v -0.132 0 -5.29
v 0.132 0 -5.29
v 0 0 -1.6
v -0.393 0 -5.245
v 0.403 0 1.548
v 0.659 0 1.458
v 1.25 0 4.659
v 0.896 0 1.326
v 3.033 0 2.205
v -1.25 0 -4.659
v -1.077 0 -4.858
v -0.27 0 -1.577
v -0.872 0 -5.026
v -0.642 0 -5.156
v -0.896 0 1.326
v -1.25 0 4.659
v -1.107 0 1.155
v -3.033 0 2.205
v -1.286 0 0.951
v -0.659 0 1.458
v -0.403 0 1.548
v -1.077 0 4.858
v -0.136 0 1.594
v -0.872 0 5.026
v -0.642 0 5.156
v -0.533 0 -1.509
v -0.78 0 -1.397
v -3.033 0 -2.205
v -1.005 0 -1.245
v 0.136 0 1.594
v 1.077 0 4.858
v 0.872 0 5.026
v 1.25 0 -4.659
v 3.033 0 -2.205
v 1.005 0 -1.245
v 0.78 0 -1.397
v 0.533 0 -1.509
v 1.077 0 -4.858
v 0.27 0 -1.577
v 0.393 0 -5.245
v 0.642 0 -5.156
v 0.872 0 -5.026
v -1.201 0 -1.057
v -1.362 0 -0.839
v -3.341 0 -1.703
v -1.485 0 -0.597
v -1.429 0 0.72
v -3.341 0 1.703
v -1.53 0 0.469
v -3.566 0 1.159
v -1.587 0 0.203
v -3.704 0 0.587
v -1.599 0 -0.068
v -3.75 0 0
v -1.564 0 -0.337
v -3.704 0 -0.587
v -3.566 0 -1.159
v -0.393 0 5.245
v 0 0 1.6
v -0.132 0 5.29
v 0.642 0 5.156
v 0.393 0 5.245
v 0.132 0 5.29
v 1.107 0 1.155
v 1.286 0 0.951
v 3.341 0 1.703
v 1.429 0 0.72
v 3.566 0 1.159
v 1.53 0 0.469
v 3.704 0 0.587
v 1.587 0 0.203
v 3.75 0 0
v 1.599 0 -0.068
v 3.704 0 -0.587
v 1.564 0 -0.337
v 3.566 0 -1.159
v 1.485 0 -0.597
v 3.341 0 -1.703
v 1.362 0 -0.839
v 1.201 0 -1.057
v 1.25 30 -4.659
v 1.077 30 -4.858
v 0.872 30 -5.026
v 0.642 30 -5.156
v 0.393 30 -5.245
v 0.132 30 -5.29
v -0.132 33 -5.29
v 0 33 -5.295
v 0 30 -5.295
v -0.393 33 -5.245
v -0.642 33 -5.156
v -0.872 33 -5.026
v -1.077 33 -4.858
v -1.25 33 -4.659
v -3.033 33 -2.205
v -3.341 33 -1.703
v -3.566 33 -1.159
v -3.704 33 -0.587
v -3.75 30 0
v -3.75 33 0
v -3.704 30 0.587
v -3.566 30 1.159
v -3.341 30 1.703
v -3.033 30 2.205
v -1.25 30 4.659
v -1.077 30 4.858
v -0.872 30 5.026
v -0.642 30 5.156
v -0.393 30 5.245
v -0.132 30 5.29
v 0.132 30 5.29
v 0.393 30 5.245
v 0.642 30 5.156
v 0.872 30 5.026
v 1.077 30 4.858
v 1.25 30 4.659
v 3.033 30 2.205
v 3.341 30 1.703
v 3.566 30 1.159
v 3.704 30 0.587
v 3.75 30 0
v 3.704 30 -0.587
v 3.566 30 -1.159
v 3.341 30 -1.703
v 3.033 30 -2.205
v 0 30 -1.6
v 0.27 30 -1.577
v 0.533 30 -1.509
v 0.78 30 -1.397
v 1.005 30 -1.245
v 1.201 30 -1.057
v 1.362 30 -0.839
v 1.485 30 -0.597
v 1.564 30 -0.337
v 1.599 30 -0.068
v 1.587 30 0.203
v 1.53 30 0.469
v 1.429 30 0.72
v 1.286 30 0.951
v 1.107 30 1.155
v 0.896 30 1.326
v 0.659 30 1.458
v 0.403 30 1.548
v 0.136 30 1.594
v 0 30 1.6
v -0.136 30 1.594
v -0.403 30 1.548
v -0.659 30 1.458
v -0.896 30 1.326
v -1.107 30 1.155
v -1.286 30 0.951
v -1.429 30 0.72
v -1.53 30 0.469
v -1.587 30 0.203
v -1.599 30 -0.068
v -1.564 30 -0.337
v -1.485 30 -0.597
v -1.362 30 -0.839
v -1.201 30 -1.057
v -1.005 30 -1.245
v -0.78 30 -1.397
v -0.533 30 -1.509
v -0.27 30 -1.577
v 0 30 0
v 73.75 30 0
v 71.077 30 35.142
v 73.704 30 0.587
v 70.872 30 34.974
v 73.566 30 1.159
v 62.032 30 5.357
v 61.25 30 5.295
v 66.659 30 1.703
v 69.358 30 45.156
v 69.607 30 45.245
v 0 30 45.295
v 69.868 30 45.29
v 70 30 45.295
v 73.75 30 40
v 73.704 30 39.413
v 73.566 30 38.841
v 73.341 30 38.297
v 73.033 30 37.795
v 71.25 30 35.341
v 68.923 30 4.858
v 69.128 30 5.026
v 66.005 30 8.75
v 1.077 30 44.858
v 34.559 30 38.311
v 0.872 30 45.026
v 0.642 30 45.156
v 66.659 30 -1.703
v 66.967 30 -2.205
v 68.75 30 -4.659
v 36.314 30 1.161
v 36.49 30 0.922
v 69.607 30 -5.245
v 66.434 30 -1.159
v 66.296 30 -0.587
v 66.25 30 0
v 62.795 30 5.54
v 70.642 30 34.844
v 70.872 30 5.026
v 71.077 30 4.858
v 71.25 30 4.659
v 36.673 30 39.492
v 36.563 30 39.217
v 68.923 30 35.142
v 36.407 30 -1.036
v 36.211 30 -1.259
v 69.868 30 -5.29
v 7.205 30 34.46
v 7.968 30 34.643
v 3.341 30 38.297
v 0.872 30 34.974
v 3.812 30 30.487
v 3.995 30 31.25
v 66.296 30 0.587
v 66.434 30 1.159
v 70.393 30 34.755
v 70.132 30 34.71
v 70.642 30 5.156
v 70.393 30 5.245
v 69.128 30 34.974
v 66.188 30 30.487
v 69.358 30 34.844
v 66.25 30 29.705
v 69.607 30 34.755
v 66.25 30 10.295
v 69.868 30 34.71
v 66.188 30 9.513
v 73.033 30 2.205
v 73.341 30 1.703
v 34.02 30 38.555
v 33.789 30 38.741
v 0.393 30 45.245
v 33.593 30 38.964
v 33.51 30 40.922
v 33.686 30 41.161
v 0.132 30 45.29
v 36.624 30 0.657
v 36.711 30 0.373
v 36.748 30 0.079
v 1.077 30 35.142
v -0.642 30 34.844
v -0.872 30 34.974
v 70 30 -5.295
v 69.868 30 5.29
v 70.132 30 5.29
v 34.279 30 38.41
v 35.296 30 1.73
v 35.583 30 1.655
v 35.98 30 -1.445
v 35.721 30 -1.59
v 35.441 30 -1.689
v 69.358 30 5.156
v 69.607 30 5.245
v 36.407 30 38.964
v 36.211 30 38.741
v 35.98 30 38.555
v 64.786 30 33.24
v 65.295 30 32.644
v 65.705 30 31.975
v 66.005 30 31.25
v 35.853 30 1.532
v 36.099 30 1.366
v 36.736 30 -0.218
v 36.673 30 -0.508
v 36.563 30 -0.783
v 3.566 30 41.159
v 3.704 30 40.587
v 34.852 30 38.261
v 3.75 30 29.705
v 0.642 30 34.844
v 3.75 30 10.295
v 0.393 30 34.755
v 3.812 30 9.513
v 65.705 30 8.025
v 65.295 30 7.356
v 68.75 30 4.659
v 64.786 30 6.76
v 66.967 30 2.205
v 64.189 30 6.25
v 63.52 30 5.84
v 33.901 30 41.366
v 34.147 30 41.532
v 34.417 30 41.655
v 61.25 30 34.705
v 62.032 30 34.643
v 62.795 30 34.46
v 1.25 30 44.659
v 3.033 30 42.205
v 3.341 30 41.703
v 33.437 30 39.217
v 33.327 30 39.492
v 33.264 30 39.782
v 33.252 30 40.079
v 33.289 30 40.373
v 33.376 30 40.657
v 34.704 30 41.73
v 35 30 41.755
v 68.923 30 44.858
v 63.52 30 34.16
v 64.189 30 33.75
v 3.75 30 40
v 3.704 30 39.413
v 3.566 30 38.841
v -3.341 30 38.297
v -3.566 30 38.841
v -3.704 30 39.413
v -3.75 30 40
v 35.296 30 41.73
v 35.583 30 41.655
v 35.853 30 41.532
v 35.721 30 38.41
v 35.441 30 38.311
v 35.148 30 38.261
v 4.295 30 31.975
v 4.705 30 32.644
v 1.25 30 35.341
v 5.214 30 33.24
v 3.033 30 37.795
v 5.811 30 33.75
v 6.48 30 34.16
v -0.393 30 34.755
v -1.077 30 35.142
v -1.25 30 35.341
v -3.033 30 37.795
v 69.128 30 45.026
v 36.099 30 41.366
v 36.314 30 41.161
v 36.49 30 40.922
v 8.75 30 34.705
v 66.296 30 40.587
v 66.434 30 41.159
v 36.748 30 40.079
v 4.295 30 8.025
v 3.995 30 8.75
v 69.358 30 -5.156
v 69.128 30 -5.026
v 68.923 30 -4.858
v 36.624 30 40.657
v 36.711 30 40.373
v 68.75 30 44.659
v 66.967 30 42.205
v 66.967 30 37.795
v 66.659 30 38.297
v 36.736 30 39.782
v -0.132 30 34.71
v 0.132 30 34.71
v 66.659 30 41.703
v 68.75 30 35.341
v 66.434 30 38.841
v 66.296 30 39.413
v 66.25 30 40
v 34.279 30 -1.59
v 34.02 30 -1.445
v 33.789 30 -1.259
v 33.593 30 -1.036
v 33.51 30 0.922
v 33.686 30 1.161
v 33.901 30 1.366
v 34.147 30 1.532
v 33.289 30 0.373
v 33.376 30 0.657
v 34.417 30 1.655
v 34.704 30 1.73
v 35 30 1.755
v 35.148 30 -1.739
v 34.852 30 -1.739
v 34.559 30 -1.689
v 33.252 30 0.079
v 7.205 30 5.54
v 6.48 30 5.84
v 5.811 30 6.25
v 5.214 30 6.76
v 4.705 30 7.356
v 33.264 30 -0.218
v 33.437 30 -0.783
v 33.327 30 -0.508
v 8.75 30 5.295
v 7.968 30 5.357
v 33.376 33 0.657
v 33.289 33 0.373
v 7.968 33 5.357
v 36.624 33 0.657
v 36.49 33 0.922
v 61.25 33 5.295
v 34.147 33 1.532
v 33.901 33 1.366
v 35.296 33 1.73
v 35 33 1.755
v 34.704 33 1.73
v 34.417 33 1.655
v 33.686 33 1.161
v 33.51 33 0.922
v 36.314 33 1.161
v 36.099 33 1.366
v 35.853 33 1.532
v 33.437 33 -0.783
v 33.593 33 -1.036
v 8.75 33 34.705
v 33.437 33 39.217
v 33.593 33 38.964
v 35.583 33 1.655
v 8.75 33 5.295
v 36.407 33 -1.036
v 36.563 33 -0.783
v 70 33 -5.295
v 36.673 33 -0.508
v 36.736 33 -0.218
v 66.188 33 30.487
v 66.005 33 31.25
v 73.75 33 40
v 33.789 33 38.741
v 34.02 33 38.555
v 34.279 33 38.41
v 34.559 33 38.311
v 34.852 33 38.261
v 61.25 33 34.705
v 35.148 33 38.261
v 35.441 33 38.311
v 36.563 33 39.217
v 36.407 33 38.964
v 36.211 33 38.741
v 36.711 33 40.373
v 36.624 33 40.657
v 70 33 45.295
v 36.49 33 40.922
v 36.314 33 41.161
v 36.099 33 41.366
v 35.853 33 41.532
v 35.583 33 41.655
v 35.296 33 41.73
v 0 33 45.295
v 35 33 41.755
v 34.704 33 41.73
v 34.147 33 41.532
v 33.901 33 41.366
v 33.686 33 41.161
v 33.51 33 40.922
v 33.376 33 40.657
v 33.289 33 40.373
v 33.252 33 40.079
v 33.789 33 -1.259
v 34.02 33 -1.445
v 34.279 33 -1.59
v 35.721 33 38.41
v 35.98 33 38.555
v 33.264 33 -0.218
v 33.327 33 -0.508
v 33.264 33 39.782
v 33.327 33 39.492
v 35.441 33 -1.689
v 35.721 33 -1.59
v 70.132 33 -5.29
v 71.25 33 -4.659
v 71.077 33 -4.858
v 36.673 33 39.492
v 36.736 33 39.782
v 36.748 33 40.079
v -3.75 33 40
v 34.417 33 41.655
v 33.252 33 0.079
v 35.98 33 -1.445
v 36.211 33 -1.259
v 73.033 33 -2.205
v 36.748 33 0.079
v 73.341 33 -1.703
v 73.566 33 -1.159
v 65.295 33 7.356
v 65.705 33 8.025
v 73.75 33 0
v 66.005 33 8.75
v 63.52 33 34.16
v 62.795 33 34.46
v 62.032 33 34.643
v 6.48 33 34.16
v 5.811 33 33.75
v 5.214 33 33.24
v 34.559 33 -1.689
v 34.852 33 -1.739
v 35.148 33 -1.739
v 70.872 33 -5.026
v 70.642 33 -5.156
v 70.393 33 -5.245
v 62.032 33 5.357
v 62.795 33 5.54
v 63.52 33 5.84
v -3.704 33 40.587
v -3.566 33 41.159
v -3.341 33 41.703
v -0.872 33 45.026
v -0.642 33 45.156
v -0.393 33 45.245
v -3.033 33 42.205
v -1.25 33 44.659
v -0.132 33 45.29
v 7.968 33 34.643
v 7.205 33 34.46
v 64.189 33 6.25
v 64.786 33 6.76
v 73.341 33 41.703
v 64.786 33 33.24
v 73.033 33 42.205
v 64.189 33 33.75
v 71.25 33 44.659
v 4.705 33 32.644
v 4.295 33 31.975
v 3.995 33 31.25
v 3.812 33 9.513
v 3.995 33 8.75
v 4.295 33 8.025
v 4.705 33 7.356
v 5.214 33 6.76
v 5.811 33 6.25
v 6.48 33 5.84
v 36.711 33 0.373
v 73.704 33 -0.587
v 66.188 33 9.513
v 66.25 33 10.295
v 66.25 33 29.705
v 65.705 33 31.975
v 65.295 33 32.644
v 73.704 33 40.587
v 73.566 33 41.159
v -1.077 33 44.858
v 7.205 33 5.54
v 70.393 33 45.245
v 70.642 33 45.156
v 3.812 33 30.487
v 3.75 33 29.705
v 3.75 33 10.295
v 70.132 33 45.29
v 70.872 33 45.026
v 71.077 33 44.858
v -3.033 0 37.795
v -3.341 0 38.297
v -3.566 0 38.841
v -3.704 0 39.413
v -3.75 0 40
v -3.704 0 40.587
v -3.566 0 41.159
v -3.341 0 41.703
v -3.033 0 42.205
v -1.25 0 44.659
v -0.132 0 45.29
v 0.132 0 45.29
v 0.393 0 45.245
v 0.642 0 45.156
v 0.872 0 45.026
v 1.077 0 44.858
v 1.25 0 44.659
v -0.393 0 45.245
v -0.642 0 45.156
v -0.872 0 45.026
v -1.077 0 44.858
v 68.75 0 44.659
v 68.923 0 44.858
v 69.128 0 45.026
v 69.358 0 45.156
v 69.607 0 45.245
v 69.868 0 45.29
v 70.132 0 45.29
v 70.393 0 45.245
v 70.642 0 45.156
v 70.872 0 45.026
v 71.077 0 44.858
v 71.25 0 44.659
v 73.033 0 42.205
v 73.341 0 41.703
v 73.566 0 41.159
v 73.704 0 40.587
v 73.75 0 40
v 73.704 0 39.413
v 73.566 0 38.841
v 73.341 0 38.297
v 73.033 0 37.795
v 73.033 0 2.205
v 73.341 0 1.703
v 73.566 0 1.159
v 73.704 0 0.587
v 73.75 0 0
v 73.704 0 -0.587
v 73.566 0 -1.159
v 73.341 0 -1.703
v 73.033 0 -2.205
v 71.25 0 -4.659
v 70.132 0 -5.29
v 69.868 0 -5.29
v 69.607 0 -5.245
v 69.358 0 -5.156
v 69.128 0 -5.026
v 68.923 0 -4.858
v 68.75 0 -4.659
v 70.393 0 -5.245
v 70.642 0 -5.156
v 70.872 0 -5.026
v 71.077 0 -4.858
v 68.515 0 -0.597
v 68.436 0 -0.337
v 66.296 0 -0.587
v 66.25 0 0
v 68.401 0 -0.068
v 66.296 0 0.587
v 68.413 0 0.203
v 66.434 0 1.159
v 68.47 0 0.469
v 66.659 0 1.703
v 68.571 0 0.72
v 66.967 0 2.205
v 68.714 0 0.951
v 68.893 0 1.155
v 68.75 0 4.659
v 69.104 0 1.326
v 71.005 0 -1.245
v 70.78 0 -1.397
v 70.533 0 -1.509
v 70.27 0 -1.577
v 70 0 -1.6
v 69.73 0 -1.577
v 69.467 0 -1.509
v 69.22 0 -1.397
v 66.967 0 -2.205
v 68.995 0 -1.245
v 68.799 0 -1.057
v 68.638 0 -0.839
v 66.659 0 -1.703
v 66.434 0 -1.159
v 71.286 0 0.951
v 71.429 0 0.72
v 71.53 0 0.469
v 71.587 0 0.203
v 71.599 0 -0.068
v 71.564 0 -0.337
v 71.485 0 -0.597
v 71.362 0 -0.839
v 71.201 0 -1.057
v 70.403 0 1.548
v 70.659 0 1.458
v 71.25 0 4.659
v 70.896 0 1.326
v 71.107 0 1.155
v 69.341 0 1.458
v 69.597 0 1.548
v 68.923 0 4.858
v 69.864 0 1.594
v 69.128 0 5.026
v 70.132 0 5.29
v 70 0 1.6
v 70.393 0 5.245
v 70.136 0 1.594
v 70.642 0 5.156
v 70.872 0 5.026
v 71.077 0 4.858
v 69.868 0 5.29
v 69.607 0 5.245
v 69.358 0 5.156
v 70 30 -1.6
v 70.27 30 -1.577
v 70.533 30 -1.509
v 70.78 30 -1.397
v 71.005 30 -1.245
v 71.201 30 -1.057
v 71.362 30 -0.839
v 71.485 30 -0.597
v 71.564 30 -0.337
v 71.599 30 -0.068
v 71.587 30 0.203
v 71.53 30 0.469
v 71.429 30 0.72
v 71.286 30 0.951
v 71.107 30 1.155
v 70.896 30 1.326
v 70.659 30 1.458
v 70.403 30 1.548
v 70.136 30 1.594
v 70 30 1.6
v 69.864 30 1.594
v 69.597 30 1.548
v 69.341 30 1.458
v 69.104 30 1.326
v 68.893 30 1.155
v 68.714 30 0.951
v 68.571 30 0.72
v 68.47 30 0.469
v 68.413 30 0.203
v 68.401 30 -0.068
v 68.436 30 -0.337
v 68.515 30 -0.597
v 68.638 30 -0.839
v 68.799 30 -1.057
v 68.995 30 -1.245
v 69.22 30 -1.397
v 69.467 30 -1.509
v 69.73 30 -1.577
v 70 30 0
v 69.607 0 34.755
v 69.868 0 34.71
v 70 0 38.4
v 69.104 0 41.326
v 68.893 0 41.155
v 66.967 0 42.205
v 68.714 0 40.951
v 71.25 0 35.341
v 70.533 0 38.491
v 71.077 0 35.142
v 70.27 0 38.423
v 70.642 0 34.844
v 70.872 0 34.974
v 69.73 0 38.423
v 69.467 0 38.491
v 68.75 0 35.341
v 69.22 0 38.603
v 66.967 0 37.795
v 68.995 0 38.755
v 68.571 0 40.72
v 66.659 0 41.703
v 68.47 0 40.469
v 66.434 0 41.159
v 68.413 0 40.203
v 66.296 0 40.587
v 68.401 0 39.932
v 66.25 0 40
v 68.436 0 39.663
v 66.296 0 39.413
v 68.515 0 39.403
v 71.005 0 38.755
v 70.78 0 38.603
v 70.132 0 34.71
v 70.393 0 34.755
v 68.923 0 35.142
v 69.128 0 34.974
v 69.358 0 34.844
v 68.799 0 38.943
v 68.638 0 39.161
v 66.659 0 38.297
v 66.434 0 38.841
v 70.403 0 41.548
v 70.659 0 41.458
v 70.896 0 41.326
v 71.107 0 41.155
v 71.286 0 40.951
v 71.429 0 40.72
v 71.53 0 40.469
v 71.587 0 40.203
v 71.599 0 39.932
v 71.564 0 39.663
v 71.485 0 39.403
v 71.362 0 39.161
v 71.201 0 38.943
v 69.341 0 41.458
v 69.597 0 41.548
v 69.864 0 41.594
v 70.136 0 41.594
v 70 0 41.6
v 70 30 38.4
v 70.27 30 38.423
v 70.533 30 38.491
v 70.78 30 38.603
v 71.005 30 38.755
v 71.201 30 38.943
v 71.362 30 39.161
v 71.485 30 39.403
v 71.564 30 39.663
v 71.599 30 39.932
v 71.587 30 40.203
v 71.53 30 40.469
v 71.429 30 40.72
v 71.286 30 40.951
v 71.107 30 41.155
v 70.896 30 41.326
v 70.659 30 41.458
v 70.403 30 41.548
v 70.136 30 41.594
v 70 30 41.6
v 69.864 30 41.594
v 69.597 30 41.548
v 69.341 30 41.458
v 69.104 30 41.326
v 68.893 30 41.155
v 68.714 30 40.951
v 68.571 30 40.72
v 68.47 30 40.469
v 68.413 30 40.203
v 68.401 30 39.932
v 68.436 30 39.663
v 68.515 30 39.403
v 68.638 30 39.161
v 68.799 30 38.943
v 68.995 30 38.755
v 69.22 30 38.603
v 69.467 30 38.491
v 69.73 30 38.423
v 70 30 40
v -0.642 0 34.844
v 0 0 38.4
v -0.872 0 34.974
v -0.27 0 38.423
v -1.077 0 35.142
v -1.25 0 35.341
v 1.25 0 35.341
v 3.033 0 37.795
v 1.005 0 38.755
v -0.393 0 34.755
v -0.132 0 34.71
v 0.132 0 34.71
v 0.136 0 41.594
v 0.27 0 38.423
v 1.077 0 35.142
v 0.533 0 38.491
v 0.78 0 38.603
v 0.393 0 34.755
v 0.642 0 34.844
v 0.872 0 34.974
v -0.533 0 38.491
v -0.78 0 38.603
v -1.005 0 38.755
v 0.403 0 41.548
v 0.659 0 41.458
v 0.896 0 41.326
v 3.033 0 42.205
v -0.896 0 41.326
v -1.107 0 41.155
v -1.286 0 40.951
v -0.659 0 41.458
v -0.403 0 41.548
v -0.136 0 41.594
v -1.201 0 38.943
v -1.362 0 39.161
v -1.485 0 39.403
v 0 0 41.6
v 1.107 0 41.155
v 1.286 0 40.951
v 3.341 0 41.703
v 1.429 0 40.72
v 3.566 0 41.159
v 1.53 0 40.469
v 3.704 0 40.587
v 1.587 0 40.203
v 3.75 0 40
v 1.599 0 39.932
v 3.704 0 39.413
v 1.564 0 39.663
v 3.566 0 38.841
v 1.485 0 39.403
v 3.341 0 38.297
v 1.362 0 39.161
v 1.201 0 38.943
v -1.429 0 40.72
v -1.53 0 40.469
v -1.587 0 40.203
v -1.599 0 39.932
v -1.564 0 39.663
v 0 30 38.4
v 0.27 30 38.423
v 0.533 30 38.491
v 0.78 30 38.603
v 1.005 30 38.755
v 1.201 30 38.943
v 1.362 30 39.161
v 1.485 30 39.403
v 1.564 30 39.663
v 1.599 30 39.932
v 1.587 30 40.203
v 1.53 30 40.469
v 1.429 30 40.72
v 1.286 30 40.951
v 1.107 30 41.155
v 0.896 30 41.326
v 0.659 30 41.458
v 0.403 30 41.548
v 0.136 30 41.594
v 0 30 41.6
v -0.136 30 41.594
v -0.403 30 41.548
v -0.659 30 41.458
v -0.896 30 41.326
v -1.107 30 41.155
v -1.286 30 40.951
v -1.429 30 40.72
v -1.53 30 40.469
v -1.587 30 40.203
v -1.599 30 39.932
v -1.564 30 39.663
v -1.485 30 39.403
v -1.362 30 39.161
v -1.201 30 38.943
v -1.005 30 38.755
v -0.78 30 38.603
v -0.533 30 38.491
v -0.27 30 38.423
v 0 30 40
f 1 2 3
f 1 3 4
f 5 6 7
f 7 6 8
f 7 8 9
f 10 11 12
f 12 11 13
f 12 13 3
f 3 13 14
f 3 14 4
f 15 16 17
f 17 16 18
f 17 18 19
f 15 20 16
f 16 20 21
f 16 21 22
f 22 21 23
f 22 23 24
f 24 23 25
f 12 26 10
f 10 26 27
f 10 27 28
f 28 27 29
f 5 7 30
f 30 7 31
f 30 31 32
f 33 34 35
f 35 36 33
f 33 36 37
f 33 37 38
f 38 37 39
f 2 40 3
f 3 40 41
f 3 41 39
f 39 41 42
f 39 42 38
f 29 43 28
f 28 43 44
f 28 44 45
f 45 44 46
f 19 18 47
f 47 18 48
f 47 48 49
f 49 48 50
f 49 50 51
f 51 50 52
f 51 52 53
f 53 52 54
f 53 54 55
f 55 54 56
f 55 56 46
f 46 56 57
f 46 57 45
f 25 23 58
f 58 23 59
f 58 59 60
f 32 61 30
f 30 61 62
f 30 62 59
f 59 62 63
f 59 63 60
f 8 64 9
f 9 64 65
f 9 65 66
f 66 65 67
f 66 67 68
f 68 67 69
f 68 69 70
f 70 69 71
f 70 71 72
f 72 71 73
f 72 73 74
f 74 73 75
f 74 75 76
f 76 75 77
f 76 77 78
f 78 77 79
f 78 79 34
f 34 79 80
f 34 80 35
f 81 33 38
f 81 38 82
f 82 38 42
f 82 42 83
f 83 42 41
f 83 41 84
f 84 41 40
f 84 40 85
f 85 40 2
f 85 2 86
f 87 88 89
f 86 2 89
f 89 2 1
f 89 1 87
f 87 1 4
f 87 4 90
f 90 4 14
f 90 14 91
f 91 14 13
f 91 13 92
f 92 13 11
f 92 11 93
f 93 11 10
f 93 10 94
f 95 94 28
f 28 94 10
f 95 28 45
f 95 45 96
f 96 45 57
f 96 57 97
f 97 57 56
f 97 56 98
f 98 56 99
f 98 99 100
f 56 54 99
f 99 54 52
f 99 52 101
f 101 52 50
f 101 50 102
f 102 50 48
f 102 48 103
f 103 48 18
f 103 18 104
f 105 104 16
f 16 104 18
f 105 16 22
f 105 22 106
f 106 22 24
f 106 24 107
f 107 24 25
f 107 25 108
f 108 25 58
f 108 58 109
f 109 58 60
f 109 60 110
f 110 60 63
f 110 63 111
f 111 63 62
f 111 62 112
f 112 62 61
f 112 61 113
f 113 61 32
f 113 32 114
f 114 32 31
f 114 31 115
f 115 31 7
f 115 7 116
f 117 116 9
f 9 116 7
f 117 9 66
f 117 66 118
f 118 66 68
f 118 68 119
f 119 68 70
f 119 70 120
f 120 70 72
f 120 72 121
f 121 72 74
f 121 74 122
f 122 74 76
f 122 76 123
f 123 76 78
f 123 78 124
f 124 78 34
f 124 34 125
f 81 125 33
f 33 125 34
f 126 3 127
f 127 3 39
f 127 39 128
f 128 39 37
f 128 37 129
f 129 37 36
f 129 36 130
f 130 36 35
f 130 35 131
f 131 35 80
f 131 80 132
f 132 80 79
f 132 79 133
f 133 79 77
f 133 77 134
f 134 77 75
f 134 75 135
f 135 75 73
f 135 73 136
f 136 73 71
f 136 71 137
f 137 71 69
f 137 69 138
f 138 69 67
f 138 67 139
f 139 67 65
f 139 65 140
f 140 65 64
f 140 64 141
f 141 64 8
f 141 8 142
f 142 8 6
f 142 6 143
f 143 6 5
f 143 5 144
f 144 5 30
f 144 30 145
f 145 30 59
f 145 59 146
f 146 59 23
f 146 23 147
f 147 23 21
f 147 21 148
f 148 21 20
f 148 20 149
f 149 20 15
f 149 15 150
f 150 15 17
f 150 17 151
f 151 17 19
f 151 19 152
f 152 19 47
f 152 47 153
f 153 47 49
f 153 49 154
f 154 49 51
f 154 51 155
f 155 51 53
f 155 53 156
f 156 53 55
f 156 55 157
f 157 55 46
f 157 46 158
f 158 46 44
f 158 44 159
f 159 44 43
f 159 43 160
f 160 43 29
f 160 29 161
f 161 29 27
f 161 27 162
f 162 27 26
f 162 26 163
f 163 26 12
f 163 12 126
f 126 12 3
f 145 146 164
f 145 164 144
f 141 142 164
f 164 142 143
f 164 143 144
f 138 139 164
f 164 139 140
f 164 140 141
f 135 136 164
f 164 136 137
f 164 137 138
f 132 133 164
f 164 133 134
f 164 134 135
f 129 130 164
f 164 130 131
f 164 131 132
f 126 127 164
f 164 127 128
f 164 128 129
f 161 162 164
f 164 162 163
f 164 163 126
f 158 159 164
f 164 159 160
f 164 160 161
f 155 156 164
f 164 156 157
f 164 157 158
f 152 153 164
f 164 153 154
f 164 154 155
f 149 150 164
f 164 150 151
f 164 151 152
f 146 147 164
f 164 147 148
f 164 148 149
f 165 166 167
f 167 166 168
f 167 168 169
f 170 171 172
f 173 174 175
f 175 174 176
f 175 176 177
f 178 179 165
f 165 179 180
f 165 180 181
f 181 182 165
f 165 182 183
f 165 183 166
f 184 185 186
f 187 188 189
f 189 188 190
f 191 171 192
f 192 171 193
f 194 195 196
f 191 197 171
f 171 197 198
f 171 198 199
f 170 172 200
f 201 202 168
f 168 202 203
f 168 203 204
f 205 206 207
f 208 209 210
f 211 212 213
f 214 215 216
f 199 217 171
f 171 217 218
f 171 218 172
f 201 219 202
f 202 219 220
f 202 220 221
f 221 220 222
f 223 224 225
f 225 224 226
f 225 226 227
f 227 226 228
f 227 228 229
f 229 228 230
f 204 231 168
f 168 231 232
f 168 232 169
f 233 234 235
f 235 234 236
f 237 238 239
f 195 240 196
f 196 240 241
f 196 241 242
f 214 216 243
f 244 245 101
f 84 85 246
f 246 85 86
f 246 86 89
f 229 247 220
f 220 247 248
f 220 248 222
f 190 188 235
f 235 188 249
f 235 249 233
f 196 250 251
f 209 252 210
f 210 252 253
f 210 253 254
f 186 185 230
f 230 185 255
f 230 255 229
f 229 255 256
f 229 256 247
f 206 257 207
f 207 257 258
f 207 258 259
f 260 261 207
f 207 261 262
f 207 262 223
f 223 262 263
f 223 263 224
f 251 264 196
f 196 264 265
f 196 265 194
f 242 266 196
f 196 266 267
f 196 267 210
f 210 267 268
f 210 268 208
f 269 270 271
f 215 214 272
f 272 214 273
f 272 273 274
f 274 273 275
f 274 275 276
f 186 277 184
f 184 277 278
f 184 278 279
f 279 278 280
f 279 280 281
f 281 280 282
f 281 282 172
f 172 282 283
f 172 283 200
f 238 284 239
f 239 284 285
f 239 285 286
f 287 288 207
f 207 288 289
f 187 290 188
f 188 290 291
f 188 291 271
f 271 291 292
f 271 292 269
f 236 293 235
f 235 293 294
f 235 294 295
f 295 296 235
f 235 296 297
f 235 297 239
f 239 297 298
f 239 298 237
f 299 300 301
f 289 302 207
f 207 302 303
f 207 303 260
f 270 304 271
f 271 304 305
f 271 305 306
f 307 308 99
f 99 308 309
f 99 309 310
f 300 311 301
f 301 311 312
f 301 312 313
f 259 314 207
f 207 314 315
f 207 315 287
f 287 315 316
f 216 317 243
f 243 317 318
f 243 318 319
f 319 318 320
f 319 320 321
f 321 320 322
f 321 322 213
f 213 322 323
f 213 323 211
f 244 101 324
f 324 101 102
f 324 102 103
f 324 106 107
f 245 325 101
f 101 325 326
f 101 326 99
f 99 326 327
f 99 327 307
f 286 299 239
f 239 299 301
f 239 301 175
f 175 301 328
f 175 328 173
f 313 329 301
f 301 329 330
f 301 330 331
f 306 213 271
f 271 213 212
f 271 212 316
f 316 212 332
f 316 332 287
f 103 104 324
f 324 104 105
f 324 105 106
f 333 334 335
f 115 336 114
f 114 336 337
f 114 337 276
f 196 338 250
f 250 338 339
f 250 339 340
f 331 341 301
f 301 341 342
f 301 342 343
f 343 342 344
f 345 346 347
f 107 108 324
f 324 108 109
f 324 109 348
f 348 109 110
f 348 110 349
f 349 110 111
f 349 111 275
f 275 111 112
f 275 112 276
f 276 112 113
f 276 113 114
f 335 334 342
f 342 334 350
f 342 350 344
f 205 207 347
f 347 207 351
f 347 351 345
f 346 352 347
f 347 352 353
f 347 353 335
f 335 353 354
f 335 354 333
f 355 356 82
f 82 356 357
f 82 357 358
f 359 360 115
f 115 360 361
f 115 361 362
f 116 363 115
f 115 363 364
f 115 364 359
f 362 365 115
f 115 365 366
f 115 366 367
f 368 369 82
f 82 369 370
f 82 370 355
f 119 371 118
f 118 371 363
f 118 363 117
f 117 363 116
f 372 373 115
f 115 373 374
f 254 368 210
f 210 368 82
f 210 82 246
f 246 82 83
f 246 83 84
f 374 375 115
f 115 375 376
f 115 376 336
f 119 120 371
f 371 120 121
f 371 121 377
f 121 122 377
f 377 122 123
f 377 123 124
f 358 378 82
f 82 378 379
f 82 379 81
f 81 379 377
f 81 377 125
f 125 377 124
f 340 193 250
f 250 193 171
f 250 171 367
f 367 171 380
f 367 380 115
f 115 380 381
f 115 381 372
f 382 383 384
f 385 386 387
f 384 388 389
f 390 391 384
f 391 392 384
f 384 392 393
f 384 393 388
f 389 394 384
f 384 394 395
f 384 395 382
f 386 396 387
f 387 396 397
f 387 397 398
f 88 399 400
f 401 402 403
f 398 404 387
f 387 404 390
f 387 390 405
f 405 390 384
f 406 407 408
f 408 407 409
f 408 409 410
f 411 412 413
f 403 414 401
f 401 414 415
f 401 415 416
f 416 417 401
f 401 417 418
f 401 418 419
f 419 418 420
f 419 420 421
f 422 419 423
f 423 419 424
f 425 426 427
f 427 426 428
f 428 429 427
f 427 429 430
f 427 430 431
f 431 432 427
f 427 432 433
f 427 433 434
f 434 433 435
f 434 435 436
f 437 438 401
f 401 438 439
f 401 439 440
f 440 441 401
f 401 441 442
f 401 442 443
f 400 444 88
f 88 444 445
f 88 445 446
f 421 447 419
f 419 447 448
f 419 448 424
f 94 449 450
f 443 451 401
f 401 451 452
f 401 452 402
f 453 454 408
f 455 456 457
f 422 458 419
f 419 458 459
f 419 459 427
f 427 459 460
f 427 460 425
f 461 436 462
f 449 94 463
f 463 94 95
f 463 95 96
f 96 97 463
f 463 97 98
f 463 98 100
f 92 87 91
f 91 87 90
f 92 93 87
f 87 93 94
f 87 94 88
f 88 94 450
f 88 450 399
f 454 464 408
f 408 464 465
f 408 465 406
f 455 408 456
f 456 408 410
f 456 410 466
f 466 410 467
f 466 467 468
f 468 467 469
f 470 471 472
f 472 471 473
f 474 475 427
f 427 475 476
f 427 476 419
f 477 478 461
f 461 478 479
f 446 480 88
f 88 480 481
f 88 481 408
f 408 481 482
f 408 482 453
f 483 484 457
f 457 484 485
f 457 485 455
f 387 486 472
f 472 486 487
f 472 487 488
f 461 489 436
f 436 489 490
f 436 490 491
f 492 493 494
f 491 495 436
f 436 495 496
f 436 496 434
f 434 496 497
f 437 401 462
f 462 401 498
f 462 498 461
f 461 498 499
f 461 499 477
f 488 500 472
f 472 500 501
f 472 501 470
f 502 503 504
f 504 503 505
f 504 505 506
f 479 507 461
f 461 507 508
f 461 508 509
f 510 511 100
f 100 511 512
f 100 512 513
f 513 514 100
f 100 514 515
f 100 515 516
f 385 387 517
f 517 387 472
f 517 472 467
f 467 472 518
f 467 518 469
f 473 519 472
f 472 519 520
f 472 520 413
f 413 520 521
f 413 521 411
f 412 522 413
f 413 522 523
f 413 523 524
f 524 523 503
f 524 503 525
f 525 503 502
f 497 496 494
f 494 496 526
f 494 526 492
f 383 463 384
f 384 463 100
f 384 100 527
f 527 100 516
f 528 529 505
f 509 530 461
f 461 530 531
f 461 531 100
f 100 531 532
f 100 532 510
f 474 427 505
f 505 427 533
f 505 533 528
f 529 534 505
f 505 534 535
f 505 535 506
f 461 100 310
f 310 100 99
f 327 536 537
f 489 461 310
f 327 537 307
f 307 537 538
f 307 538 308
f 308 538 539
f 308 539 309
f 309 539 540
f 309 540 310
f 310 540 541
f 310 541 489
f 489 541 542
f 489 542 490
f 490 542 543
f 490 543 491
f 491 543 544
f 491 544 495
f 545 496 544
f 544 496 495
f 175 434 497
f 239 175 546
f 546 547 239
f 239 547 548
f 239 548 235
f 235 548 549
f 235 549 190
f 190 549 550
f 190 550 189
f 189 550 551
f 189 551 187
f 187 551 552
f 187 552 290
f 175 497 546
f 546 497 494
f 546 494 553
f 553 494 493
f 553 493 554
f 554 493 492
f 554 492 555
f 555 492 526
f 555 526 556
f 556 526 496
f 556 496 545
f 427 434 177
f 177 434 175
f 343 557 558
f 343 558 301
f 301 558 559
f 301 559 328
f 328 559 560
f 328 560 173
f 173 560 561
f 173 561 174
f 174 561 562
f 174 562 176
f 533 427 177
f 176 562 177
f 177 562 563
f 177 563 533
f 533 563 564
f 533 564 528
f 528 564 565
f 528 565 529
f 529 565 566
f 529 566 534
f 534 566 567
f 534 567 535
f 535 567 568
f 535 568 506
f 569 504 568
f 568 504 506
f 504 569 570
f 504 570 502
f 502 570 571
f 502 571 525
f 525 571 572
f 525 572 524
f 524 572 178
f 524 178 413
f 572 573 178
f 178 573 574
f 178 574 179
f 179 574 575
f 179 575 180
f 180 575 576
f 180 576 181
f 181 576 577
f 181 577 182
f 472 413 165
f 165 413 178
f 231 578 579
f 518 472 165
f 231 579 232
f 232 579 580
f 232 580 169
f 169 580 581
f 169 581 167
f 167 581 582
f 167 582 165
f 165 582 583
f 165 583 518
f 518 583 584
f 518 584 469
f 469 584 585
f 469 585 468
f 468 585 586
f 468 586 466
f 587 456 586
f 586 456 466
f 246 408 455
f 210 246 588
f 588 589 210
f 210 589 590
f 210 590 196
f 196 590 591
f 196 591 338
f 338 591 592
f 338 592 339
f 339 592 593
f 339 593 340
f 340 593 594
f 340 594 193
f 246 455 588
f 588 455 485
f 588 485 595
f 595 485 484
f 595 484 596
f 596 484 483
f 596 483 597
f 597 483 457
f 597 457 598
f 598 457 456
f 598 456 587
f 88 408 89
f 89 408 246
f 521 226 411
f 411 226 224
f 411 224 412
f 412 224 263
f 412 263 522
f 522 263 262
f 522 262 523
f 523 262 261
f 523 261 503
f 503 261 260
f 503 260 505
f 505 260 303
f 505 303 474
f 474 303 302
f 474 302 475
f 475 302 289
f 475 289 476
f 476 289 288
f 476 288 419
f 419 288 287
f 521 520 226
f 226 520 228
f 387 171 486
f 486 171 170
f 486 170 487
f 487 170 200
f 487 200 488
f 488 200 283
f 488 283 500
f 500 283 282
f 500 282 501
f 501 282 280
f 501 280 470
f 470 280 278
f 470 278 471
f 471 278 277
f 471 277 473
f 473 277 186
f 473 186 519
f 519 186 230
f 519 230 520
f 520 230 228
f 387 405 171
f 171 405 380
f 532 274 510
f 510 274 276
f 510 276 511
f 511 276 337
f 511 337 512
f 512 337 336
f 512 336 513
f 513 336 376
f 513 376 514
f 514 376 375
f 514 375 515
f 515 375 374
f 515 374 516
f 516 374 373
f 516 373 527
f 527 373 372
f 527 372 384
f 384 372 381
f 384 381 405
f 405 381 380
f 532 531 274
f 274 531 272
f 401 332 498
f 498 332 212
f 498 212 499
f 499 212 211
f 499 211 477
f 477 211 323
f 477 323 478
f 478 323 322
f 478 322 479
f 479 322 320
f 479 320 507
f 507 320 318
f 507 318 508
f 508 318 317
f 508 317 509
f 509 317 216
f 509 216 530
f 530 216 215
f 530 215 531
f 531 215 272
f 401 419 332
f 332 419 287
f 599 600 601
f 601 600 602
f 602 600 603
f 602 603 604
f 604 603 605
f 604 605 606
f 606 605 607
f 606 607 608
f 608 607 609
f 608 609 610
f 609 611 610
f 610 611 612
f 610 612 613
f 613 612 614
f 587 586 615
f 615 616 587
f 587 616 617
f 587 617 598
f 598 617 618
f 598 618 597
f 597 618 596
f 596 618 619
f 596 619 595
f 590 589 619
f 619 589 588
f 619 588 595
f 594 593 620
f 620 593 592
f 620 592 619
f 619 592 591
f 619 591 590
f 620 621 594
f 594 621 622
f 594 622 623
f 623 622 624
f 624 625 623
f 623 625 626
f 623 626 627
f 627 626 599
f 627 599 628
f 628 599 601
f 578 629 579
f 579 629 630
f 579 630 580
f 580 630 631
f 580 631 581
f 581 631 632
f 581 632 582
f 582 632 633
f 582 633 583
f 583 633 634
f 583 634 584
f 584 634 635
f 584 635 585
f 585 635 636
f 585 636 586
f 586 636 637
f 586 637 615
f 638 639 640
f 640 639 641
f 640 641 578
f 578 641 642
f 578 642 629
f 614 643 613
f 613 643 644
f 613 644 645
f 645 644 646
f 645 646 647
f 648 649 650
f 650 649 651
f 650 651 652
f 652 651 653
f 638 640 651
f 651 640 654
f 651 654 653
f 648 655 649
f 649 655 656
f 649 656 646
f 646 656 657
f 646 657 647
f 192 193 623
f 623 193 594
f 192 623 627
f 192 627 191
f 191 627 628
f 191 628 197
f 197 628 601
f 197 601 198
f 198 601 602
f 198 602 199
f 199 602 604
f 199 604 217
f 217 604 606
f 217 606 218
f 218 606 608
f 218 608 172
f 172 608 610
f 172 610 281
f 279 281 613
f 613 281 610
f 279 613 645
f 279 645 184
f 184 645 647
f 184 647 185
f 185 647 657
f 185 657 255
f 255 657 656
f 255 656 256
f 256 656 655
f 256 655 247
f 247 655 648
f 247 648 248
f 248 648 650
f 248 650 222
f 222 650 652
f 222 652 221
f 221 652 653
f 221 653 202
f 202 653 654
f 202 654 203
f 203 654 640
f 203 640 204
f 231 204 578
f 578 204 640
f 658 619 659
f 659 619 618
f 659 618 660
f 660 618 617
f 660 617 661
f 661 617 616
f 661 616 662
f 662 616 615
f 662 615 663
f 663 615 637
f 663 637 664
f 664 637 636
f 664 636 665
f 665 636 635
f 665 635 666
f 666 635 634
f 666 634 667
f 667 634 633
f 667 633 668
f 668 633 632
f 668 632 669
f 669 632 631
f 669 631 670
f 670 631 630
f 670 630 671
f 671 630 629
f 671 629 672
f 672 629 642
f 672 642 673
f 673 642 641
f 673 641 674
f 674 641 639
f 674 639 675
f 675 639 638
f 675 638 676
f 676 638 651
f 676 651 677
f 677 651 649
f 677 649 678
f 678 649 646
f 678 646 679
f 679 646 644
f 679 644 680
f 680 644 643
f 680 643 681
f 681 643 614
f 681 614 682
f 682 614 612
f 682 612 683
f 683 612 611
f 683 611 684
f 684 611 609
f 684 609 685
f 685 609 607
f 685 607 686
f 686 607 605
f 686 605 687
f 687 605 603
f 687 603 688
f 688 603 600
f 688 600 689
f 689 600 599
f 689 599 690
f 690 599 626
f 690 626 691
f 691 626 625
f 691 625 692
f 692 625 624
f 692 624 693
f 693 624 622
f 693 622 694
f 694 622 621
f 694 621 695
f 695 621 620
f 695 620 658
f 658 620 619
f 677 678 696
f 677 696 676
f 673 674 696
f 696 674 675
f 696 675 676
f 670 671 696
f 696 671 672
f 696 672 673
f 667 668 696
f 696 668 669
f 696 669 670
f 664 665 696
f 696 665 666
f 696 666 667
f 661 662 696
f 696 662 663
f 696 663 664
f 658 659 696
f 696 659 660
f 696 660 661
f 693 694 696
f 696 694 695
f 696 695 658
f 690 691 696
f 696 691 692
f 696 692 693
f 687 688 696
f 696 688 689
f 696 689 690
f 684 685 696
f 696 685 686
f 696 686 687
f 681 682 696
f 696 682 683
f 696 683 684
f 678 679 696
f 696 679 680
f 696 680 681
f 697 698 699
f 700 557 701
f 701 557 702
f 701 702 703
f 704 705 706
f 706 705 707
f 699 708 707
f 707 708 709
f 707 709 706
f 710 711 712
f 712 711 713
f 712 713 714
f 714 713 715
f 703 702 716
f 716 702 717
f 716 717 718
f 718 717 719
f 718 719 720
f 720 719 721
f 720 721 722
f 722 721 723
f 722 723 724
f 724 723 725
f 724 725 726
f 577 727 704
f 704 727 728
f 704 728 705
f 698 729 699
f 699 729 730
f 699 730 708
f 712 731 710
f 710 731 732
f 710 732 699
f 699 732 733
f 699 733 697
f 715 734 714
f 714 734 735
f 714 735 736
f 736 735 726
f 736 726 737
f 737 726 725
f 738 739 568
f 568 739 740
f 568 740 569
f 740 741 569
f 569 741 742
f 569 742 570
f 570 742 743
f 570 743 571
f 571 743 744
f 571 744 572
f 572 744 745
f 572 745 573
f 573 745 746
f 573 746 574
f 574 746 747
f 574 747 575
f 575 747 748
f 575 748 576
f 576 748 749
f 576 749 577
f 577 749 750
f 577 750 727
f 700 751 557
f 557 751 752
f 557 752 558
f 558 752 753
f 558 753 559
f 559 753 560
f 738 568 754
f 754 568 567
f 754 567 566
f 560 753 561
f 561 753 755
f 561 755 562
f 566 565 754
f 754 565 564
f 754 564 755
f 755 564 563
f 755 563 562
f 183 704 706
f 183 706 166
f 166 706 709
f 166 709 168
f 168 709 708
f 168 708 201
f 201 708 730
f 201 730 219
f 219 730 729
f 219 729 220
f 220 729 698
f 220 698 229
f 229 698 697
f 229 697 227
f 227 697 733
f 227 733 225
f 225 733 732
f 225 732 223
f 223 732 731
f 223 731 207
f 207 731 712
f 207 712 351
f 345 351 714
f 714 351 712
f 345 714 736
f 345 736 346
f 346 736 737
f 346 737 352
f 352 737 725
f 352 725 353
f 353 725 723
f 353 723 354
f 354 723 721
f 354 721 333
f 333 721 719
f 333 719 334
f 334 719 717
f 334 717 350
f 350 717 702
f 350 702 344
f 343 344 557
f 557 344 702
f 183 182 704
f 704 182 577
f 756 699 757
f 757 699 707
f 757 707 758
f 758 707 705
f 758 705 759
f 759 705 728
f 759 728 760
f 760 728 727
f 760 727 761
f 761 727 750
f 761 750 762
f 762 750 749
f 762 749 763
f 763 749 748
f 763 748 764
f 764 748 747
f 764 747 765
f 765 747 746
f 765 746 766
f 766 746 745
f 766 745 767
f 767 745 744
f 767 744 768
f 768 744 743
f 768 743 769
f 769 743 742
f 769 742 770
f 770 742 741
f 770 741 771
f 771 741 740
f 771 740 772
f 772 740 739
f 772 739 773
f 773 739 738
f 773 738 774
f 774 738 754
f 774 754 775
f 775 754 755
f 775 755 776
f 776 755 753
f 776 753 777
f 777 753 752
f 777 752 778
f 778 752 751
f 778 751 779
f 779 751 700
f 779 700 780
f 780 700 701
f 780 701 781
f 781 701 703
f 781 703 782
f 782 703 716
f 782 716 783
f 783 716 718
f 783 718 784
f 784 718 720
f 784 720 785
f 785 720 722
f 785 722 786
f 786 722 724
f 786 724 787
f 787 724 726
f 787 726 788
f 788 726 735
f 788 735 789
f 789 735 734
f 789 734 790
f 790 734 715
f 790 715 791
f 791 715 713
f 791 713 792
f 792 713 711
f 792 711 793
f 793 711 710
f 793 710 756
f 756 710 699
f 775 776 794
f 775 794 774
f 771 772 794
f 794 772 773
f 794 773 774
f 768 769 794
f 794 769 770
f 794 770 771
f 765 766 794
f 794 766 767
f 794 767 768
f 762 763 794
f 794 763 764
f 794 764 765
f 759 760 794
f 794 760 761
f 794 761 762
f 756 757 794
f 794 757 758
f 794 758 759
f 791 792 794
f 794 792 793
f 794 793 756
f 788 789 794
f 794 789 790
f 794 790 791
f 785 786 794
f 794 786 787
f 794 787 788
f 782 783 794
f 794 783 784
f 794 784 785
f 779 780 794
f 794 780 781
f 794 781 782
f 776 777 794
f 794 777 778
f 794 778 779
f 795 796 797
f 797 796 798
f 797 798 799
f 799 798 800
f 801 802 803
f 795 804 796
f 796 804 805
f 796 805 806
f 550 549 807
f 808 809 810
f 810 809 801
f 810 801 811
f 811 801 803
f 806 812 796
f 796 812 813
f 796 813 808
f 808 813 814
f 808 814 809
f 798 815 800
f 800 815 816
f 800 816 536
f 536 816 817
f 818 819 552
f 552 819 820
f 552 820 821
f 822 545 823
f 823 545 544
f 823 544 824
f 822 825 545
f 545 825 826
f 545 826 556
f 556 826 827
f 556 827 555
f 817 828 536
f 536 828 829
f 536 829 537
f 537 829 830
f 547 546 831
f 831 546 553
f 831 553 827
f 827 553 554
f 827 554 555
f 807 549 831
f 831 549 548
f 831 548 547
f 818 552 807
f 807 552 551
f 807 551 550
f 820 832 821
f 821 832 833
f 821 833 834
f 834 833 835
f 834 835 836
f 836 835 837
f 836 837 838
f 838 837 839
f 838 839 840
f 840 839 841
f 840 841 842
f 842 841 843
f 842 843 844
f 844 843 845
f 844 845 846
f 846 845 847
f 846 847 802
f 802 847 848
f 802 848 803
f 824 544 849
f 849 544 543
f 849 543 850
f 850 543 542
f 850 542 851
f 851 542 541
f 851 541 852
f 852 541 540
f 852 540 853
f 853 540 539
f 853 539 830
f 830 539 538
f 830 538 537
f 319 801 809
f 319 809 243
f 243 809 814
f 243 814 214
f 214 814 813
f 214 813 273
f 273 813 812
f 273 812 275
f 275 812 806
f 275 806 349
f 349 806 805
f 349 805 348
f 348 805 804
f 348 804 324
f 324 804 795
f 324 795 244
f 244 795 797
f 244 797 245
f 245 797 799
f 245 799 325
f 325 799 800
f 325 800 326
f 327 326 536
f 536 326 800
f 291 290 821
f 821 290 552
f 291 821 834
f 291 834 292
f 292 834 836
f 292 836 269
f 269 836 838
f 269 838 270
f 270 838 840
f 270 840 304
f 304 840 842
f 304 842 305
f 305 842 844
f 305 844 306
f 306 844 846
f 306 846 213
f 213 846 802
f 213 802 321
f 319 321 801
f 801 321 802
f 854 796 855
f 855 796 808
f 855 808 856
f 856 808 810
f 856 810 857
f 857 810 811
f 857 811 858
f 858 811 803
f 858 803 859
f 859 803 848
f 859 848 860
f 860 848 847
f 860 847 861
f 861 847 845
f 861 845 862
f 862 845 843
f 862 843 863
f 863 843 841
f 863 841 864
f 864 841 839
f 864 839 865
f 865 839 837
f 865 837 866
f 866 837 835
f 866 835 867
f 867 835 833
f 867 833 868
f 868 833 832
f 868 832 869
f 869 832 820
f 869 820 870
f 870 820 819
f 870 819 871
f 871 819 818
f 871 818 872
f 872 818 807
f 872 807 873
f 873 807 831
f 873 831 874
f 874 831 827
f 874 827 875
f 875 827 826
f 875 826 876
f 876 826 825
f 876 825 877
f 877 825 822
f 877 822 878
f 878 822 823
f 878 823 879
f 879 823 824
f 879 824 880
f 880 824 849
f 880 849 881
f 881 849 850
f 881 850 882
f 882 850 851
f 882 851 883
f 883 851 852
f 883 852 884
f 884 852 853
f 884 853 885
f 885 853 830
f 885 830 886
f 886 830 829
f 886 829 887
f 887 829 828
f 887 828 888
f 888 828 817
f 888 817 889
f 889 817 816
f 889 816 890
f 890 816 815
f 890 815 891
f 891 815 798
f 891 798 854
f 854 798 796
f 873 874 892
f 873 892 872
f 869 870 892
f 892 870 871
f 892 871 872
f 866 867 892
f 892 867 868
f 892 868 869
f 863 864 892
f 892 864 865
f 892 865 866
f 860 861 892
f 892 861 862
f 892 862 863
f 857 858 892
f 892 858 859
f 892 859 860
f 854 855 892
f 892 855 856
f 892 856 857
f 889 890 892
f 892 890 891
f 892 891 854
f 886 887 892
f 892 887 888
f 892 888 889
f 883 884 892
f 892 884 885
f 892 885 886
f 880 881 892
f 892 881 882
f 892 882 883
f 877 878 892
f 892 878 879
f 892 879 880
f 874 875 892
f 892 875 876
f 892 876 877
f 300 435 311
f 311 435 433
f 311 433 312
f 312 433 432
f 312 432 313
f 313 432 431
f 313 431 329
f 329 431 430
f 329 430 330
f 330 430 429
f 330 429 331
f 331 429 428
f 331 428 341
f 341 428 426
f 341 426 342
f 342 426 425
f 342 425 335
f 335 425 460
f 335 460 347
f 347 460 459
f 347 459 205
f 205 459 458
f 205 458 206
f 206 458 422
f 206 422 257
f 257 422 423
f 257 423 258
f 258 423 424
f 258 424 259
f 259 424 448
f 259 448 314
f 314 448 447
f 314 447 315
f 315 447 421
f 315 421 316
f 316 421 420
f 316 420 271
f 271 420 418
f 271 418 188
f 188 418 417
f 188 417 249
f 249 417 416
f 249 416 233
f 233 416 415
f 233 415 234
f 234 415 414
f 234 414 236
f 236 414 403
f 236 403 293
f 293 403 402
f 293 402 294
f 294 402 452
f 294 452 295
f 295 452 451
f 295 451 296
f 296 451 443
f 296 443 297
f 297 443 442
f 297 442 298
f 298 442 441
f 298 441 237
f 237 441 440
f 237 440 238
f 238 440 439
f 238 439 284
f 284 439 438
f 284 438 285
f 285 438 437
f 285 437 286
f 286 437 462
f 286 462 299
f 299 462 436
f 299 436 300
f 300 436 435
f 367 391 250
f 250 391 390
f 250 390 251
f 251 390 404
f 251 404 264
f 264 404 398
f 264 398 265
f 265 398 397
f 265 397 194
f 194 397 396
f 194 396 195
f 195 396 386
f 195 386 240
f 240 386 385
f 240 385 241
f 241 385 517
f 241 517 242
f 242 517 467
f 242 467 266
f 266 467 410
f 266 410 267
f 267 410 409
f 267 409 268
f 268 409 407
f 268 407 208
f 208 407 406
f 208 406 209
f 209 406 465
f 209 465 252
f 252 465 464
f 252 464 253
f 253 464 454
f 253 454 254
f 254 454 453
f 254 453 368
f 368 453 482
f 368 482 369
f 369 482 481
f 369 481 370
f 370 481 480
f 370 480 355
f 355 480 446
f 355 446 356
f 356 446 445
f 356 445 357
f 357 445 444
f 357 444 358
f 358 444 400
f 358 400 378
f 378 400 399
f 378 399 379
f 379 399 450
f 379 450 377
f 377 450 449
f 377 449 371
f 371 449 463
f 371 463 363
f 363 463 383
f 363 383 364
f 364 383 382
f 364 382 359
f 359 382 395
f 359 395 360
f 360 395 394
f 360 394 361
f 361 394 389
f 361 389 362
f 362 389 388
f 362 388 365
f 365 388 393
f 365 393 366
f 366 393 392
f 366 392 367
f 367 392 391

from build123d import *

# Parameters (mm, degrees)
SKETCH1_R             = 1.6
BOSS_EXTRUDE1_DEPTH   = 30
BOSS_EXTRUDE1_2_DEPTH = 30
BOSS_EXTRUDE1_3_DEPTH = 30
BOSS_EXTRUDE1_4_DEPTH = 30
BOSS_EXTRUDE2_DEPTH   = 3
SKETCH3_R             = 1.75
CUT_EXTRUDE1_DEPTH    = 3


with BuildPart() as part:
    # Sketch1 → Boss-Extrude1 (new body)
    with BuildSketch(Plane(origin=(0, 0, 0), x_dir=(1, 0, 0), z_dir=(0, 1, 0))):
        with BuildLine():
            Line((-1.25, 4.658509183), (-3.033431688, 2.204720435))
            ThreePointArc((-3.033431688, 2.204720435), (-3.75, 0), (-3.033431688, -2.204720435))
            Line((-3.033431688, -2.204720435), (-1.25, -4.658509183))
            ThreePointArc((-1.25, -4.658509183), (0, -5.295279565), (1.25, -4.658509183))
            Line((1.25, -4.658509183), (3.033431688, -2.204720435))
            ThreePointArc((3.033431688, -2.204720435), (3.75, 0), (3.033431688, 2.204720435))
            Line((3.033431688, 2.204720435), (1.25, 4.658509183))
            ThreePointArc((1.25, 4.658509183), (0, 5.295279565), (-1.25, 4.658509183))
        make_face()
        with Locations(Location((0, 0, 0), (0, 0, 270))):
            Circle(SKETCH1_R, mode=Mode.SUBTRACT)
    extrude(amount=BOSS_EXTRUDE1_DEPTH)



with BuildPart() as body_2:
    # Sketch1 → Boss-Extrude1 2 (new body)
    with BuildSketch(Plane(origin=(0, 0, 0), x_dir=(1, 0, 0), z_dir=(0, 1, 0))):
        with BuildLine():
            Line((68.75, 4.658509183), (66.966568312, 2.204720435))
            ThreePointArc((66.966568312, 2.204720435), (66.25, 0), (66.966568312, -2.204720435))
            Line((66.966568312, -2.204720435), (68.75, -4.658509183))
            ThreePointArc((68.75, -4.658509183), (70, -5.295279565), (71.25, -4.658509183))
            Line((71.25, -4.658509183), (73.033431688, -2.204720435))
            ThreePointArc((73.033431688, -2.204720435), (73.75, 0), (73.033431688, 2.204720435))
            Line((73.033431688, 2.204720435), (71.25, 4.658509183))
            ThreePointArc((71.25, 4.658509183), (70, 5.295279565), (68.75, 4.658509183))
        make_face()
        with Locations(Location((70, 0, 0), (0, 0, 270))):
            Circle(SKETCH1_R, mode=Mode.SUBTRACT)
    extrude(amount=BOSS_EXTRUDE1_2_DEPTH)


with BuildPart() as body_3:
    # Sketch1 → Boss-Extrude1 3 (new body)
    with BuildSketch(Plane(origin=(0, 0, 0), x_dir=(1, 0, 0), z_dir=(0, 1, 0))):
        with BuildLine():
            Line((68.75, -35.341490817), (66.966568312, -37.795279565))
            ThreePointArc((66.966568312, -37.795279565), (66.25, -40), (66.966568312, -42.204720435))
            Line((66.966568312, -42.204720435), (68.75, -44.658509183))
            ThreePointArc((68.75, -44.658509183), (70, -45.295279565), (71.25, -44.658509183))
            Line((71.25, -44.658509183), (73.033431688, -42.204720435))
            ThreePointArc((73.033431688, -42.204720435), (73.75, -40), (73.033431688, -37.795279565))
            Line((73.033431688, -37.795279565), (71.25, -35.341490817))
            ThreePointArc((71.25, -35.341490817), (70, -34.704720435), (68.75, -35.341490817))
        make_face()
        with Locations(Location((70, -40, 0), (0, 0, 270))):
            Circle(SKETCH1_R, mode=Mode.SUBTRACT)
    extrude(amount=BOSS_EXTRUDE1_3_DEPTH)


with BuildPart() as body_4:
    # Sketch1 → Boss-Extrude1 4 (new body)
    with BuildSketch(Plane(origin=(0, 0, 0), x_dir=(1, 0, 0), z_dir=(0, 1, 0))):
        with BuildLine():
            Line((-1.25, -35.341490817), (-3.033431688, -37.795279565))
            ThreePointArc((-3.033431688, -37.795279565), (-3.75, -40), (-3.033431688, -42.204720435))
            Line((-3.033431688, -42.204720435), (-1.25, -44.658509183))
            ThreePointArc((-1.25, -44.658509183), (0, -45.295279565), (1.25, -44.658509183))
            Line((1.25, -44.658509183), (3.033431688, -42.204720435))
            ThreePointArc((3.033431688, -42.204720435), (3.75, -40), (3.033431688, -37.795279565))
            Line((3.033431688, -37.795279565), (1.25, -35.341490817))
            ThreePointArc((1.25, -35.341490817), (0, -34.704720435), (-1.25, -35.341490817))
        make_face()
        with Locations(Location((0, -40, 0), (0, 0, 270))):
            Circle(SKETCH1_R, mode=Mode.SUBTRACT)
    extrude(amount=BOSS_EXTRUDE1_4_DEPTH)


with BuildPart() as part_1:
    add(part.part)

    add(body_2.part)  # Boss-Extrude2 merges body 2

    add(body_3.part)  # Boss-Extrude2 merges body 3

    add(body_4.part)  # Boss-Extrude2 merges body 4
    # Sketch2 → Boss-Extrude2 (add)
    with BuildSketch(Plane(origin=(0, 30, 0), x_dir=(1, 0, 0), z_dir=(0, 1, 0))):
        with BuildLine():
            Line((-3.75, 0), (-3.75, -40))
            ThreePointArc((-3.75, -40), (-3.566361509, -41.159122765), (-3.033431688, -42.204720435))
            Line((-3.033431688, -42.204720435), (-1.25, -44.658509183))
            ThreePointArc((-1.25, -44.658509183), (-0.701422932, -45.126914959), (0, -45.295279565))
            Line((0, -45.295279565), (70, -45.295279565))
            ThreePointArc((70, -45.295279565), (70.701422932, -45.126914959), (71.25, -44.658509183))
            Line((71.25, -44.658509183), (73.033431688, -42.204720435))
            ThreePointArc((73.033431688, -42.204720435), (73.566361509, -41.159122765), (73.75, -40))
            Line((73.75, -40), (73.75, 0))
            ThreePointArc((73.75, 0), (73.566361509, 1.159122765), (73.033431688, 2.204720435))
            Line((73.033431688, 2.204720435), (71.25, 4.658509183))
            ThreePointArc((71.25, 4.658509183), (70.701422932, 5.126914959), (70, 5.295279565))
            Line((70, 5.295279565), (0, 5.295279565))
            ThreePointArc((0, 5.295279565), (-0.701422932, 5.126914959), (-1.25, 4.658509183))
            Line((-1.25, 4.658509183), (-3.033431688, 2.204720435))
            ThreePointArc((-3.033431688, 2.204720435), (-3.566361509, 1.159122765), (-3.75, 0))
        make_face()
        with BuildLine():
            Line((8.75, -34.704720435), (61.25, -34.704720435))
            ThreePointArc((61.25, -34.704720435), (64.785533906, -33.240254341), (66.25, -29.704720435))
            Line((66.25, -29.704720435), (66.25, -10.295279565))
            ThreePointArc((66.25, -10.295279565), (64.785533906, -6.759745659), (61.25, -5.295279565))
            Line((61.25, -5.295279565), (8.75, -5.295279565))
            ThreePointArc((8.75, -5.295279565), (5.214466094, -6.759745659), (3.75, -10.295279565))
            Line((3.75, -10.295279565), (3.75, -29.704720435))
            ThreePointArc((3.75, -29.704720435), (5.214466094, -33.240254341), (8.75, -34.704720435))
        make_face(mode=Mode.SUBTRACT)
    extrude(amount=BOSS_EXTRUDE2_DEPTH)

    # Sketch3 → Cut-Extrude1 (cut)
    with BuildSketch(Plane(origin=(0, 33, 0), x_dir=(1, 0, 0), z_dir=(0, 1, 0))):
        with Locations(Location((35, -0.004720435, 0), (0, 0, 270))):
            Circle(SKETCH3_R)
        with Locations(Location((35, -40.004720435, 0), (0, 0, 270))):
            Circle(SKETCH3_R)
    extrude(amount=-CUT_EXTRUDE1_DEPTH, mode=Mode.SUBTRACT)


solid = part_1.part
